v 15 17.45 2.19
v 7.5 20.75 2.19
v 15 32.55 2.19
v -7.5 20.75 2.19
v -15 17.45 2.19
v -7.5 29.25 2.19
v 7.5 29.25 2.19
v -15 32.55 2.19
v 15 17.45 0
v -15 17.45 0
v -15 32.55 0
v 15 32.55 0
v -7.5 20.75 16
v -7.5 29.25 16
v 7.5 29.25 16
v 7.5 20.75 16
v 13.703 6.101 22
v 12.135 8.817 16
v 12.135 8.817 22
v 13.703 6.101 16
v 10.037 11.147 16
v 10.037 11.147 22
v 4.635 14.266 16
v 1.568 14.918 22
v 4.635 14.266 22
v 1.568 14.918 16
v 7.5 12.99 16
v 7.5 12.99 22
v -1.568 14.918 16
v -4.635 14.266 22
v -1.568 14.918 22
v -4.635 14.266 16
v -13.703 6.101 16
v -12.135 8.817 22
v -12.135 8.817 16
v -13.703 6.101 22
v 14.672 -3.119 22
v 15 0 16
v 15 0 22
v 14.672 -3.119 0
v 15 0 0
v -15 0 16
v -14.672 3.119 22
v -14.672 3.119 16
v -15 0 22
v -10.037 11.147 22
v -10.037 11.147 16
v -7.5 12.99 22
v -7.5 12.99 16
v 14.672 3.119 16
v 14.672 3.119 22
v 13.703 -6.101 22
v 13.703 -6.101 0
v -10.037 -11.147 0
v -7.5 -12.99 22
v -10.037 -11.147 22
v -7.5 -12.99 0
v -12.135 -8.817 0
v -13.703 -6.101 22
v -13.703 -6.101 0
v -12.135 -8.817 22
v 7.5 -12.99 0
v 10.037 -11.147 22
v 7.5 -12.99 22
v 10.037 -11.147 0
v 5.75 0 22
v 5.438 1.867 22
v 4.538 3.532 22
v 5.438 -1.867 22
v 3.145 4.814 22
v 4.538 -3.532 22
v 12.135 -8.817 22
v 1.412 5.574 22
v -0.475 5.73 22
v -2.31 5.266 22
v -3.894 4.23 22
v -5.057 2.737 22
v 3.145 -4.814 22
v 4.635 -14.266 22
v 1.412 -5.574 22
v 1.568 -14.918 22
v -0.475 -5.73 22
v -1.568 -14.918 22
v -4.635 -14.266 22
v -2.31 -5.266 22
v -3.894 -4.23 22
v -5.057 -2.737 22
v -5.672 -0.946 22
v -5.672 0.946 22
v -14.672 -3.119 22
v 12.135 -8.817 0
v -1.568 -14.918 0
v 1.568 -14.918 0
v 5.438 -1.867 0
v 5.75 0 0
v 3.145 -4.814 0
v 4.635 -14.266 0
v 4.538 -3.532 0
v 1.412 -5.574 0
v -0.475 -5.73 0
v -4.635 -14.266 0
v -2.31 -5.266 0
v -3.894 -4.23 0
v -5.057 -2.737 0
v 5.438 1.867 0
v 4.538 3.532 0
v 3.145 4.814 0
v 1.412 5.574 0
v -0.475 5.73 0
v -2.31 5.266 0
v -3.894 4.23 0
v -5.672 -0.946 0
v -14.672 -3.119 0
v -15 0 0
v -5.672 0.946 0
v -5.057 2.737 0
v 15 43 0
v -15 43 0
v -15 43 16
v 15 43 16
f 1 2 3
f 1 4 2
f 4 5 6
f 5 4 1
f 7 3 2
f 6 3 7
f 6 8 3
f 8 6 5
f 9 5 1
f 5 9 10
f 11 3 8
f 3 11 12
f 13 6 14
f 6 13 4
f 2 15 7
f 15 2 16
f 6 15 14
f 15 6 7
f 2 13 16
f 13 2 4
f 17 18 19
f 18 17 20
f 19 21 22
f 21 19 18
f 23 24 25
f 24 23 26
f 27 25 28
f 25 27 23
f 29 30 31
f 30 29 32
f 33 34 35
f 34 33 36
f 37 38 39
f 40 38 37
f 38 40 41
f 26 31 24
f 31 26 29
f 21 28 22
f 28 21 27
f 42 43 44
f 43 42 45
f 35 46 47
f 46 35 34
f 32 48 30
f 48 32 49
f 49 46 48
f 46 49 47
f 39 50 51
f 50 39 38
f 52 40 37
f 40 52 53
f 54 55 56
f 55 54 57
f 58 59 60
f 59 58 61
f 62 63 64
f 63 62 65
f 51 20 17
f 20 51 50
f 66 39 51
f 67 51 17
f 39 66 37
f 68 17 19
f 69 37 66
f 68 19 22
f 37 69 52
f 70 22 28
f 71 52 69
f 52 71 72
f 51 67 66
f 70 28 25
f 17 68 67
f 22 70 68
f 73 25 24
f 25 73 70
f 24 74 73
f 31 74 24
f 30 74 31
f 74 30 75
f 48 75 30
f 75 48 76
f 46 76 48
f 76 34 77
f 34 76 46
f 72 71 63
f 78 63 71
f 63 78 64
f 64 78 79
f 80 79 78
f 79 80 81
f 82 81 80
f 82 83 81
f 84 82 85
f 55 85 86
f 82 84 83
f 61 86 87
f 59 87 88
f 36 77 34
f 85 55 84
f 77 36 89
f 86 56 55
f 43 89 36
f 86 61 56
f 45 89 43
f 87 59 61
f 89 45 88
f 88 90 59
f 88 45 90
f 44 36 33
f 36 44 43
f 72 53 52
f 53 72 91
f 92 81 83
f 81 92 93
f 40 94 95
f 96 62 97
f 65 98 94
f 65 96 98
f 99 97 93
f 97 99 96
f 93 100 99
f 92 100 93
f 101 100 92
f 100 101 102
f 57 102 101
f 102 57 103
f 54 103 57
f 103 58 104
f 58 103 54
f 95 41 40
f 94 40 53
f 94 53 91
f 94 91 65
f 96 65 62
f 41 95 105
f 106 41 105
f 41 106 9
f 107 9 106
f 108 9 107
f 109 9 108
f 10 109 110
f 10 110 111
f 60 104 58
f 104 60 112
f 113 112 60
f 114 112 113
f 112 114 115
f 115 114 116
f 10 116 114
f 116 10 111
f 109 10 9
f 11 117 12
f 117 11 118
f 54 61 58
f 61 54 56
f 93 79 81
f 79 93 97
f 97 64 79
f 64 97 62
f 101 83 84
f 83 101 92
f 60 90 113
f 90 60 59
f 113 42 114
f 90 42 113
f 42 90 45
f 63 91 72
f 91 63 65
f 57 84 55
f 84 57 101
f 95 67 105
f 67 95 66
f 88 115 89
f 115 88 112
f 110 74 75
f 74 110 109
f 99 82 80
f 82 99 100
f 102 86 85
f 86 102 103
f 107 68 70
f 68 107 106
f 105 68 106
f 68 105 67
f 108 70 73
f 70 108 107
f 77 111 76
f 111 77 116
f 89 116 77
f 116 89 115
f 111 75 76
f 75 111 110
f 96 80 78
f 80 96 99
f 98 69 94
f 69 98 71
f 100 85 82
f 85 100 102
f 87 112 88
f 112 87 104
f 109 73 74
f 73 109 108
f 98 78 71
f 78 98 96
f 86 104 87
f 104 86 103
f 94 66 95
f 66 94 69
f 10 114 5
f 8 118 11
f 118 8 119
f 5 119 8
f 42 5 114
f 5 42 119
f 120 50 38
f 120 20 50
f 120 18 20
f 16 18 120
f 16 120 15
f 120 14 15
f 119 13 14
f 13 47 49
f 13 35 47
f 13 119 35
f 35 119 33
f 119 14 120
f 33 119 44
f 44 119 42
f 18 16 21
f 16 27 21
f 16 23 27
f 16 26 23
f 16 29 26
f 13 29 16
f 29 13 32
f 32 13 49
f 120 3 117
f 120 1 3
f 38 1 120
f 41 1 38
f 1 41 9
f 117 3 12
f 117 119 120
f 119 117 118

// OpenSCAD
//Copyright (c) <2022> <Anders Viljosson>
//
//Permission is hereby granted, free of charge, to any person obtaining a copy
//of this software and associated documentation files (the "Software"), to deal
//in the Software without restriction, including without limitation the rights
//to use, copy, modify, merge, publish, distribute, sublicense, and/or sell
//copies of the Software, and to permit persons to whom the Software is
//furnished to do so, subject to the following conditions:
//
//The above copyright notice and this permission notice shall be included in all
//copies or substantial portions of the Software.
//
//THE SOFTWARE IS PROVIDED "AS IS", WITHOUT WARRANTY OF ANY KIND, EXPRESS OR
//IMPLIED, INCLUDING BUT NOT LIMITED TO THE WARRANTIES OF MERCHANTABILITY,
//FITNESS FOR A PARTICULAR PURPOSE AND NONINFRINGEMENT. IN NO EVENT SHALL THE
//AUTHORS OR COPYRIGHT HOLDERS BE LIABLE FOR ANY CLAIM, DAMAGES OR OTHER
//LIABILITY, WHETHER IN AN ACTION OF CONTRACT, TORT OR OTHERWISE, ARISING FROM,
//OUT OF OR IN CONNECTION WITH THE SOFTWARE OR THE USE OR OTHER DEALINGS IN THE
//SOFTWARE.

// Description
// This is a model to generate a compatible part with
// "Novoferm 30102 - Paper roll holder for Novoferm sectional garage door from 1988"



// Total part properties
width=30;
heigth=22;
length=43;
fastener_depth=6;  // Depth removed on bolt head side

// Roller hole properties
hole_diam=11.5; 
hole_radius=hole_diam/2;

// Mounting slot properties
slot_width=15.10;
slot_depth=2.20; 
slot_distance=25;  // Distance between hole center to slot middle

// Screw slot properties
screw_slot_l = 15;
screw_slot_w= 8.5;



module round_part(){
translate([0, 0, heigth/2])
   difference(){
        cylinder(h=22, r=width/2, center=true);
        cylinder(h=22+0.01, r=hole_radius, center=true); 
    //    translate([0, hole_diam, 0]) cube([hole_radius+shell_thickness*4, shell_thickness, heigth+0.01], center=true);
    }
}

module square_part(){
    translate([0, length/2, heigth/2-fastener_depth/2]) cube([width, length, heigth-fastener_depth], center=true);
}

module part_outline(){
    union(){
    square_part();
    round_part();
}
}

module inner_hole(){
    translate([0, 0, heigth/2]){
        cylinder(h=22+0.01, r=hole_radius, center=true); 
    }
}


module slot(){
    translate([0, slot_distance, slot_depth/2-0.01]) cube([width+0.01, slot_width, slot_depth], center=true);
    translate([0, slot_distance, heigth/2]) cube([screw_slot_l, screw_slot_w, heigth+0.01], center=true);
}
  

difference(){
    part_outline();
    inner_hole();
    slot();
}

   
